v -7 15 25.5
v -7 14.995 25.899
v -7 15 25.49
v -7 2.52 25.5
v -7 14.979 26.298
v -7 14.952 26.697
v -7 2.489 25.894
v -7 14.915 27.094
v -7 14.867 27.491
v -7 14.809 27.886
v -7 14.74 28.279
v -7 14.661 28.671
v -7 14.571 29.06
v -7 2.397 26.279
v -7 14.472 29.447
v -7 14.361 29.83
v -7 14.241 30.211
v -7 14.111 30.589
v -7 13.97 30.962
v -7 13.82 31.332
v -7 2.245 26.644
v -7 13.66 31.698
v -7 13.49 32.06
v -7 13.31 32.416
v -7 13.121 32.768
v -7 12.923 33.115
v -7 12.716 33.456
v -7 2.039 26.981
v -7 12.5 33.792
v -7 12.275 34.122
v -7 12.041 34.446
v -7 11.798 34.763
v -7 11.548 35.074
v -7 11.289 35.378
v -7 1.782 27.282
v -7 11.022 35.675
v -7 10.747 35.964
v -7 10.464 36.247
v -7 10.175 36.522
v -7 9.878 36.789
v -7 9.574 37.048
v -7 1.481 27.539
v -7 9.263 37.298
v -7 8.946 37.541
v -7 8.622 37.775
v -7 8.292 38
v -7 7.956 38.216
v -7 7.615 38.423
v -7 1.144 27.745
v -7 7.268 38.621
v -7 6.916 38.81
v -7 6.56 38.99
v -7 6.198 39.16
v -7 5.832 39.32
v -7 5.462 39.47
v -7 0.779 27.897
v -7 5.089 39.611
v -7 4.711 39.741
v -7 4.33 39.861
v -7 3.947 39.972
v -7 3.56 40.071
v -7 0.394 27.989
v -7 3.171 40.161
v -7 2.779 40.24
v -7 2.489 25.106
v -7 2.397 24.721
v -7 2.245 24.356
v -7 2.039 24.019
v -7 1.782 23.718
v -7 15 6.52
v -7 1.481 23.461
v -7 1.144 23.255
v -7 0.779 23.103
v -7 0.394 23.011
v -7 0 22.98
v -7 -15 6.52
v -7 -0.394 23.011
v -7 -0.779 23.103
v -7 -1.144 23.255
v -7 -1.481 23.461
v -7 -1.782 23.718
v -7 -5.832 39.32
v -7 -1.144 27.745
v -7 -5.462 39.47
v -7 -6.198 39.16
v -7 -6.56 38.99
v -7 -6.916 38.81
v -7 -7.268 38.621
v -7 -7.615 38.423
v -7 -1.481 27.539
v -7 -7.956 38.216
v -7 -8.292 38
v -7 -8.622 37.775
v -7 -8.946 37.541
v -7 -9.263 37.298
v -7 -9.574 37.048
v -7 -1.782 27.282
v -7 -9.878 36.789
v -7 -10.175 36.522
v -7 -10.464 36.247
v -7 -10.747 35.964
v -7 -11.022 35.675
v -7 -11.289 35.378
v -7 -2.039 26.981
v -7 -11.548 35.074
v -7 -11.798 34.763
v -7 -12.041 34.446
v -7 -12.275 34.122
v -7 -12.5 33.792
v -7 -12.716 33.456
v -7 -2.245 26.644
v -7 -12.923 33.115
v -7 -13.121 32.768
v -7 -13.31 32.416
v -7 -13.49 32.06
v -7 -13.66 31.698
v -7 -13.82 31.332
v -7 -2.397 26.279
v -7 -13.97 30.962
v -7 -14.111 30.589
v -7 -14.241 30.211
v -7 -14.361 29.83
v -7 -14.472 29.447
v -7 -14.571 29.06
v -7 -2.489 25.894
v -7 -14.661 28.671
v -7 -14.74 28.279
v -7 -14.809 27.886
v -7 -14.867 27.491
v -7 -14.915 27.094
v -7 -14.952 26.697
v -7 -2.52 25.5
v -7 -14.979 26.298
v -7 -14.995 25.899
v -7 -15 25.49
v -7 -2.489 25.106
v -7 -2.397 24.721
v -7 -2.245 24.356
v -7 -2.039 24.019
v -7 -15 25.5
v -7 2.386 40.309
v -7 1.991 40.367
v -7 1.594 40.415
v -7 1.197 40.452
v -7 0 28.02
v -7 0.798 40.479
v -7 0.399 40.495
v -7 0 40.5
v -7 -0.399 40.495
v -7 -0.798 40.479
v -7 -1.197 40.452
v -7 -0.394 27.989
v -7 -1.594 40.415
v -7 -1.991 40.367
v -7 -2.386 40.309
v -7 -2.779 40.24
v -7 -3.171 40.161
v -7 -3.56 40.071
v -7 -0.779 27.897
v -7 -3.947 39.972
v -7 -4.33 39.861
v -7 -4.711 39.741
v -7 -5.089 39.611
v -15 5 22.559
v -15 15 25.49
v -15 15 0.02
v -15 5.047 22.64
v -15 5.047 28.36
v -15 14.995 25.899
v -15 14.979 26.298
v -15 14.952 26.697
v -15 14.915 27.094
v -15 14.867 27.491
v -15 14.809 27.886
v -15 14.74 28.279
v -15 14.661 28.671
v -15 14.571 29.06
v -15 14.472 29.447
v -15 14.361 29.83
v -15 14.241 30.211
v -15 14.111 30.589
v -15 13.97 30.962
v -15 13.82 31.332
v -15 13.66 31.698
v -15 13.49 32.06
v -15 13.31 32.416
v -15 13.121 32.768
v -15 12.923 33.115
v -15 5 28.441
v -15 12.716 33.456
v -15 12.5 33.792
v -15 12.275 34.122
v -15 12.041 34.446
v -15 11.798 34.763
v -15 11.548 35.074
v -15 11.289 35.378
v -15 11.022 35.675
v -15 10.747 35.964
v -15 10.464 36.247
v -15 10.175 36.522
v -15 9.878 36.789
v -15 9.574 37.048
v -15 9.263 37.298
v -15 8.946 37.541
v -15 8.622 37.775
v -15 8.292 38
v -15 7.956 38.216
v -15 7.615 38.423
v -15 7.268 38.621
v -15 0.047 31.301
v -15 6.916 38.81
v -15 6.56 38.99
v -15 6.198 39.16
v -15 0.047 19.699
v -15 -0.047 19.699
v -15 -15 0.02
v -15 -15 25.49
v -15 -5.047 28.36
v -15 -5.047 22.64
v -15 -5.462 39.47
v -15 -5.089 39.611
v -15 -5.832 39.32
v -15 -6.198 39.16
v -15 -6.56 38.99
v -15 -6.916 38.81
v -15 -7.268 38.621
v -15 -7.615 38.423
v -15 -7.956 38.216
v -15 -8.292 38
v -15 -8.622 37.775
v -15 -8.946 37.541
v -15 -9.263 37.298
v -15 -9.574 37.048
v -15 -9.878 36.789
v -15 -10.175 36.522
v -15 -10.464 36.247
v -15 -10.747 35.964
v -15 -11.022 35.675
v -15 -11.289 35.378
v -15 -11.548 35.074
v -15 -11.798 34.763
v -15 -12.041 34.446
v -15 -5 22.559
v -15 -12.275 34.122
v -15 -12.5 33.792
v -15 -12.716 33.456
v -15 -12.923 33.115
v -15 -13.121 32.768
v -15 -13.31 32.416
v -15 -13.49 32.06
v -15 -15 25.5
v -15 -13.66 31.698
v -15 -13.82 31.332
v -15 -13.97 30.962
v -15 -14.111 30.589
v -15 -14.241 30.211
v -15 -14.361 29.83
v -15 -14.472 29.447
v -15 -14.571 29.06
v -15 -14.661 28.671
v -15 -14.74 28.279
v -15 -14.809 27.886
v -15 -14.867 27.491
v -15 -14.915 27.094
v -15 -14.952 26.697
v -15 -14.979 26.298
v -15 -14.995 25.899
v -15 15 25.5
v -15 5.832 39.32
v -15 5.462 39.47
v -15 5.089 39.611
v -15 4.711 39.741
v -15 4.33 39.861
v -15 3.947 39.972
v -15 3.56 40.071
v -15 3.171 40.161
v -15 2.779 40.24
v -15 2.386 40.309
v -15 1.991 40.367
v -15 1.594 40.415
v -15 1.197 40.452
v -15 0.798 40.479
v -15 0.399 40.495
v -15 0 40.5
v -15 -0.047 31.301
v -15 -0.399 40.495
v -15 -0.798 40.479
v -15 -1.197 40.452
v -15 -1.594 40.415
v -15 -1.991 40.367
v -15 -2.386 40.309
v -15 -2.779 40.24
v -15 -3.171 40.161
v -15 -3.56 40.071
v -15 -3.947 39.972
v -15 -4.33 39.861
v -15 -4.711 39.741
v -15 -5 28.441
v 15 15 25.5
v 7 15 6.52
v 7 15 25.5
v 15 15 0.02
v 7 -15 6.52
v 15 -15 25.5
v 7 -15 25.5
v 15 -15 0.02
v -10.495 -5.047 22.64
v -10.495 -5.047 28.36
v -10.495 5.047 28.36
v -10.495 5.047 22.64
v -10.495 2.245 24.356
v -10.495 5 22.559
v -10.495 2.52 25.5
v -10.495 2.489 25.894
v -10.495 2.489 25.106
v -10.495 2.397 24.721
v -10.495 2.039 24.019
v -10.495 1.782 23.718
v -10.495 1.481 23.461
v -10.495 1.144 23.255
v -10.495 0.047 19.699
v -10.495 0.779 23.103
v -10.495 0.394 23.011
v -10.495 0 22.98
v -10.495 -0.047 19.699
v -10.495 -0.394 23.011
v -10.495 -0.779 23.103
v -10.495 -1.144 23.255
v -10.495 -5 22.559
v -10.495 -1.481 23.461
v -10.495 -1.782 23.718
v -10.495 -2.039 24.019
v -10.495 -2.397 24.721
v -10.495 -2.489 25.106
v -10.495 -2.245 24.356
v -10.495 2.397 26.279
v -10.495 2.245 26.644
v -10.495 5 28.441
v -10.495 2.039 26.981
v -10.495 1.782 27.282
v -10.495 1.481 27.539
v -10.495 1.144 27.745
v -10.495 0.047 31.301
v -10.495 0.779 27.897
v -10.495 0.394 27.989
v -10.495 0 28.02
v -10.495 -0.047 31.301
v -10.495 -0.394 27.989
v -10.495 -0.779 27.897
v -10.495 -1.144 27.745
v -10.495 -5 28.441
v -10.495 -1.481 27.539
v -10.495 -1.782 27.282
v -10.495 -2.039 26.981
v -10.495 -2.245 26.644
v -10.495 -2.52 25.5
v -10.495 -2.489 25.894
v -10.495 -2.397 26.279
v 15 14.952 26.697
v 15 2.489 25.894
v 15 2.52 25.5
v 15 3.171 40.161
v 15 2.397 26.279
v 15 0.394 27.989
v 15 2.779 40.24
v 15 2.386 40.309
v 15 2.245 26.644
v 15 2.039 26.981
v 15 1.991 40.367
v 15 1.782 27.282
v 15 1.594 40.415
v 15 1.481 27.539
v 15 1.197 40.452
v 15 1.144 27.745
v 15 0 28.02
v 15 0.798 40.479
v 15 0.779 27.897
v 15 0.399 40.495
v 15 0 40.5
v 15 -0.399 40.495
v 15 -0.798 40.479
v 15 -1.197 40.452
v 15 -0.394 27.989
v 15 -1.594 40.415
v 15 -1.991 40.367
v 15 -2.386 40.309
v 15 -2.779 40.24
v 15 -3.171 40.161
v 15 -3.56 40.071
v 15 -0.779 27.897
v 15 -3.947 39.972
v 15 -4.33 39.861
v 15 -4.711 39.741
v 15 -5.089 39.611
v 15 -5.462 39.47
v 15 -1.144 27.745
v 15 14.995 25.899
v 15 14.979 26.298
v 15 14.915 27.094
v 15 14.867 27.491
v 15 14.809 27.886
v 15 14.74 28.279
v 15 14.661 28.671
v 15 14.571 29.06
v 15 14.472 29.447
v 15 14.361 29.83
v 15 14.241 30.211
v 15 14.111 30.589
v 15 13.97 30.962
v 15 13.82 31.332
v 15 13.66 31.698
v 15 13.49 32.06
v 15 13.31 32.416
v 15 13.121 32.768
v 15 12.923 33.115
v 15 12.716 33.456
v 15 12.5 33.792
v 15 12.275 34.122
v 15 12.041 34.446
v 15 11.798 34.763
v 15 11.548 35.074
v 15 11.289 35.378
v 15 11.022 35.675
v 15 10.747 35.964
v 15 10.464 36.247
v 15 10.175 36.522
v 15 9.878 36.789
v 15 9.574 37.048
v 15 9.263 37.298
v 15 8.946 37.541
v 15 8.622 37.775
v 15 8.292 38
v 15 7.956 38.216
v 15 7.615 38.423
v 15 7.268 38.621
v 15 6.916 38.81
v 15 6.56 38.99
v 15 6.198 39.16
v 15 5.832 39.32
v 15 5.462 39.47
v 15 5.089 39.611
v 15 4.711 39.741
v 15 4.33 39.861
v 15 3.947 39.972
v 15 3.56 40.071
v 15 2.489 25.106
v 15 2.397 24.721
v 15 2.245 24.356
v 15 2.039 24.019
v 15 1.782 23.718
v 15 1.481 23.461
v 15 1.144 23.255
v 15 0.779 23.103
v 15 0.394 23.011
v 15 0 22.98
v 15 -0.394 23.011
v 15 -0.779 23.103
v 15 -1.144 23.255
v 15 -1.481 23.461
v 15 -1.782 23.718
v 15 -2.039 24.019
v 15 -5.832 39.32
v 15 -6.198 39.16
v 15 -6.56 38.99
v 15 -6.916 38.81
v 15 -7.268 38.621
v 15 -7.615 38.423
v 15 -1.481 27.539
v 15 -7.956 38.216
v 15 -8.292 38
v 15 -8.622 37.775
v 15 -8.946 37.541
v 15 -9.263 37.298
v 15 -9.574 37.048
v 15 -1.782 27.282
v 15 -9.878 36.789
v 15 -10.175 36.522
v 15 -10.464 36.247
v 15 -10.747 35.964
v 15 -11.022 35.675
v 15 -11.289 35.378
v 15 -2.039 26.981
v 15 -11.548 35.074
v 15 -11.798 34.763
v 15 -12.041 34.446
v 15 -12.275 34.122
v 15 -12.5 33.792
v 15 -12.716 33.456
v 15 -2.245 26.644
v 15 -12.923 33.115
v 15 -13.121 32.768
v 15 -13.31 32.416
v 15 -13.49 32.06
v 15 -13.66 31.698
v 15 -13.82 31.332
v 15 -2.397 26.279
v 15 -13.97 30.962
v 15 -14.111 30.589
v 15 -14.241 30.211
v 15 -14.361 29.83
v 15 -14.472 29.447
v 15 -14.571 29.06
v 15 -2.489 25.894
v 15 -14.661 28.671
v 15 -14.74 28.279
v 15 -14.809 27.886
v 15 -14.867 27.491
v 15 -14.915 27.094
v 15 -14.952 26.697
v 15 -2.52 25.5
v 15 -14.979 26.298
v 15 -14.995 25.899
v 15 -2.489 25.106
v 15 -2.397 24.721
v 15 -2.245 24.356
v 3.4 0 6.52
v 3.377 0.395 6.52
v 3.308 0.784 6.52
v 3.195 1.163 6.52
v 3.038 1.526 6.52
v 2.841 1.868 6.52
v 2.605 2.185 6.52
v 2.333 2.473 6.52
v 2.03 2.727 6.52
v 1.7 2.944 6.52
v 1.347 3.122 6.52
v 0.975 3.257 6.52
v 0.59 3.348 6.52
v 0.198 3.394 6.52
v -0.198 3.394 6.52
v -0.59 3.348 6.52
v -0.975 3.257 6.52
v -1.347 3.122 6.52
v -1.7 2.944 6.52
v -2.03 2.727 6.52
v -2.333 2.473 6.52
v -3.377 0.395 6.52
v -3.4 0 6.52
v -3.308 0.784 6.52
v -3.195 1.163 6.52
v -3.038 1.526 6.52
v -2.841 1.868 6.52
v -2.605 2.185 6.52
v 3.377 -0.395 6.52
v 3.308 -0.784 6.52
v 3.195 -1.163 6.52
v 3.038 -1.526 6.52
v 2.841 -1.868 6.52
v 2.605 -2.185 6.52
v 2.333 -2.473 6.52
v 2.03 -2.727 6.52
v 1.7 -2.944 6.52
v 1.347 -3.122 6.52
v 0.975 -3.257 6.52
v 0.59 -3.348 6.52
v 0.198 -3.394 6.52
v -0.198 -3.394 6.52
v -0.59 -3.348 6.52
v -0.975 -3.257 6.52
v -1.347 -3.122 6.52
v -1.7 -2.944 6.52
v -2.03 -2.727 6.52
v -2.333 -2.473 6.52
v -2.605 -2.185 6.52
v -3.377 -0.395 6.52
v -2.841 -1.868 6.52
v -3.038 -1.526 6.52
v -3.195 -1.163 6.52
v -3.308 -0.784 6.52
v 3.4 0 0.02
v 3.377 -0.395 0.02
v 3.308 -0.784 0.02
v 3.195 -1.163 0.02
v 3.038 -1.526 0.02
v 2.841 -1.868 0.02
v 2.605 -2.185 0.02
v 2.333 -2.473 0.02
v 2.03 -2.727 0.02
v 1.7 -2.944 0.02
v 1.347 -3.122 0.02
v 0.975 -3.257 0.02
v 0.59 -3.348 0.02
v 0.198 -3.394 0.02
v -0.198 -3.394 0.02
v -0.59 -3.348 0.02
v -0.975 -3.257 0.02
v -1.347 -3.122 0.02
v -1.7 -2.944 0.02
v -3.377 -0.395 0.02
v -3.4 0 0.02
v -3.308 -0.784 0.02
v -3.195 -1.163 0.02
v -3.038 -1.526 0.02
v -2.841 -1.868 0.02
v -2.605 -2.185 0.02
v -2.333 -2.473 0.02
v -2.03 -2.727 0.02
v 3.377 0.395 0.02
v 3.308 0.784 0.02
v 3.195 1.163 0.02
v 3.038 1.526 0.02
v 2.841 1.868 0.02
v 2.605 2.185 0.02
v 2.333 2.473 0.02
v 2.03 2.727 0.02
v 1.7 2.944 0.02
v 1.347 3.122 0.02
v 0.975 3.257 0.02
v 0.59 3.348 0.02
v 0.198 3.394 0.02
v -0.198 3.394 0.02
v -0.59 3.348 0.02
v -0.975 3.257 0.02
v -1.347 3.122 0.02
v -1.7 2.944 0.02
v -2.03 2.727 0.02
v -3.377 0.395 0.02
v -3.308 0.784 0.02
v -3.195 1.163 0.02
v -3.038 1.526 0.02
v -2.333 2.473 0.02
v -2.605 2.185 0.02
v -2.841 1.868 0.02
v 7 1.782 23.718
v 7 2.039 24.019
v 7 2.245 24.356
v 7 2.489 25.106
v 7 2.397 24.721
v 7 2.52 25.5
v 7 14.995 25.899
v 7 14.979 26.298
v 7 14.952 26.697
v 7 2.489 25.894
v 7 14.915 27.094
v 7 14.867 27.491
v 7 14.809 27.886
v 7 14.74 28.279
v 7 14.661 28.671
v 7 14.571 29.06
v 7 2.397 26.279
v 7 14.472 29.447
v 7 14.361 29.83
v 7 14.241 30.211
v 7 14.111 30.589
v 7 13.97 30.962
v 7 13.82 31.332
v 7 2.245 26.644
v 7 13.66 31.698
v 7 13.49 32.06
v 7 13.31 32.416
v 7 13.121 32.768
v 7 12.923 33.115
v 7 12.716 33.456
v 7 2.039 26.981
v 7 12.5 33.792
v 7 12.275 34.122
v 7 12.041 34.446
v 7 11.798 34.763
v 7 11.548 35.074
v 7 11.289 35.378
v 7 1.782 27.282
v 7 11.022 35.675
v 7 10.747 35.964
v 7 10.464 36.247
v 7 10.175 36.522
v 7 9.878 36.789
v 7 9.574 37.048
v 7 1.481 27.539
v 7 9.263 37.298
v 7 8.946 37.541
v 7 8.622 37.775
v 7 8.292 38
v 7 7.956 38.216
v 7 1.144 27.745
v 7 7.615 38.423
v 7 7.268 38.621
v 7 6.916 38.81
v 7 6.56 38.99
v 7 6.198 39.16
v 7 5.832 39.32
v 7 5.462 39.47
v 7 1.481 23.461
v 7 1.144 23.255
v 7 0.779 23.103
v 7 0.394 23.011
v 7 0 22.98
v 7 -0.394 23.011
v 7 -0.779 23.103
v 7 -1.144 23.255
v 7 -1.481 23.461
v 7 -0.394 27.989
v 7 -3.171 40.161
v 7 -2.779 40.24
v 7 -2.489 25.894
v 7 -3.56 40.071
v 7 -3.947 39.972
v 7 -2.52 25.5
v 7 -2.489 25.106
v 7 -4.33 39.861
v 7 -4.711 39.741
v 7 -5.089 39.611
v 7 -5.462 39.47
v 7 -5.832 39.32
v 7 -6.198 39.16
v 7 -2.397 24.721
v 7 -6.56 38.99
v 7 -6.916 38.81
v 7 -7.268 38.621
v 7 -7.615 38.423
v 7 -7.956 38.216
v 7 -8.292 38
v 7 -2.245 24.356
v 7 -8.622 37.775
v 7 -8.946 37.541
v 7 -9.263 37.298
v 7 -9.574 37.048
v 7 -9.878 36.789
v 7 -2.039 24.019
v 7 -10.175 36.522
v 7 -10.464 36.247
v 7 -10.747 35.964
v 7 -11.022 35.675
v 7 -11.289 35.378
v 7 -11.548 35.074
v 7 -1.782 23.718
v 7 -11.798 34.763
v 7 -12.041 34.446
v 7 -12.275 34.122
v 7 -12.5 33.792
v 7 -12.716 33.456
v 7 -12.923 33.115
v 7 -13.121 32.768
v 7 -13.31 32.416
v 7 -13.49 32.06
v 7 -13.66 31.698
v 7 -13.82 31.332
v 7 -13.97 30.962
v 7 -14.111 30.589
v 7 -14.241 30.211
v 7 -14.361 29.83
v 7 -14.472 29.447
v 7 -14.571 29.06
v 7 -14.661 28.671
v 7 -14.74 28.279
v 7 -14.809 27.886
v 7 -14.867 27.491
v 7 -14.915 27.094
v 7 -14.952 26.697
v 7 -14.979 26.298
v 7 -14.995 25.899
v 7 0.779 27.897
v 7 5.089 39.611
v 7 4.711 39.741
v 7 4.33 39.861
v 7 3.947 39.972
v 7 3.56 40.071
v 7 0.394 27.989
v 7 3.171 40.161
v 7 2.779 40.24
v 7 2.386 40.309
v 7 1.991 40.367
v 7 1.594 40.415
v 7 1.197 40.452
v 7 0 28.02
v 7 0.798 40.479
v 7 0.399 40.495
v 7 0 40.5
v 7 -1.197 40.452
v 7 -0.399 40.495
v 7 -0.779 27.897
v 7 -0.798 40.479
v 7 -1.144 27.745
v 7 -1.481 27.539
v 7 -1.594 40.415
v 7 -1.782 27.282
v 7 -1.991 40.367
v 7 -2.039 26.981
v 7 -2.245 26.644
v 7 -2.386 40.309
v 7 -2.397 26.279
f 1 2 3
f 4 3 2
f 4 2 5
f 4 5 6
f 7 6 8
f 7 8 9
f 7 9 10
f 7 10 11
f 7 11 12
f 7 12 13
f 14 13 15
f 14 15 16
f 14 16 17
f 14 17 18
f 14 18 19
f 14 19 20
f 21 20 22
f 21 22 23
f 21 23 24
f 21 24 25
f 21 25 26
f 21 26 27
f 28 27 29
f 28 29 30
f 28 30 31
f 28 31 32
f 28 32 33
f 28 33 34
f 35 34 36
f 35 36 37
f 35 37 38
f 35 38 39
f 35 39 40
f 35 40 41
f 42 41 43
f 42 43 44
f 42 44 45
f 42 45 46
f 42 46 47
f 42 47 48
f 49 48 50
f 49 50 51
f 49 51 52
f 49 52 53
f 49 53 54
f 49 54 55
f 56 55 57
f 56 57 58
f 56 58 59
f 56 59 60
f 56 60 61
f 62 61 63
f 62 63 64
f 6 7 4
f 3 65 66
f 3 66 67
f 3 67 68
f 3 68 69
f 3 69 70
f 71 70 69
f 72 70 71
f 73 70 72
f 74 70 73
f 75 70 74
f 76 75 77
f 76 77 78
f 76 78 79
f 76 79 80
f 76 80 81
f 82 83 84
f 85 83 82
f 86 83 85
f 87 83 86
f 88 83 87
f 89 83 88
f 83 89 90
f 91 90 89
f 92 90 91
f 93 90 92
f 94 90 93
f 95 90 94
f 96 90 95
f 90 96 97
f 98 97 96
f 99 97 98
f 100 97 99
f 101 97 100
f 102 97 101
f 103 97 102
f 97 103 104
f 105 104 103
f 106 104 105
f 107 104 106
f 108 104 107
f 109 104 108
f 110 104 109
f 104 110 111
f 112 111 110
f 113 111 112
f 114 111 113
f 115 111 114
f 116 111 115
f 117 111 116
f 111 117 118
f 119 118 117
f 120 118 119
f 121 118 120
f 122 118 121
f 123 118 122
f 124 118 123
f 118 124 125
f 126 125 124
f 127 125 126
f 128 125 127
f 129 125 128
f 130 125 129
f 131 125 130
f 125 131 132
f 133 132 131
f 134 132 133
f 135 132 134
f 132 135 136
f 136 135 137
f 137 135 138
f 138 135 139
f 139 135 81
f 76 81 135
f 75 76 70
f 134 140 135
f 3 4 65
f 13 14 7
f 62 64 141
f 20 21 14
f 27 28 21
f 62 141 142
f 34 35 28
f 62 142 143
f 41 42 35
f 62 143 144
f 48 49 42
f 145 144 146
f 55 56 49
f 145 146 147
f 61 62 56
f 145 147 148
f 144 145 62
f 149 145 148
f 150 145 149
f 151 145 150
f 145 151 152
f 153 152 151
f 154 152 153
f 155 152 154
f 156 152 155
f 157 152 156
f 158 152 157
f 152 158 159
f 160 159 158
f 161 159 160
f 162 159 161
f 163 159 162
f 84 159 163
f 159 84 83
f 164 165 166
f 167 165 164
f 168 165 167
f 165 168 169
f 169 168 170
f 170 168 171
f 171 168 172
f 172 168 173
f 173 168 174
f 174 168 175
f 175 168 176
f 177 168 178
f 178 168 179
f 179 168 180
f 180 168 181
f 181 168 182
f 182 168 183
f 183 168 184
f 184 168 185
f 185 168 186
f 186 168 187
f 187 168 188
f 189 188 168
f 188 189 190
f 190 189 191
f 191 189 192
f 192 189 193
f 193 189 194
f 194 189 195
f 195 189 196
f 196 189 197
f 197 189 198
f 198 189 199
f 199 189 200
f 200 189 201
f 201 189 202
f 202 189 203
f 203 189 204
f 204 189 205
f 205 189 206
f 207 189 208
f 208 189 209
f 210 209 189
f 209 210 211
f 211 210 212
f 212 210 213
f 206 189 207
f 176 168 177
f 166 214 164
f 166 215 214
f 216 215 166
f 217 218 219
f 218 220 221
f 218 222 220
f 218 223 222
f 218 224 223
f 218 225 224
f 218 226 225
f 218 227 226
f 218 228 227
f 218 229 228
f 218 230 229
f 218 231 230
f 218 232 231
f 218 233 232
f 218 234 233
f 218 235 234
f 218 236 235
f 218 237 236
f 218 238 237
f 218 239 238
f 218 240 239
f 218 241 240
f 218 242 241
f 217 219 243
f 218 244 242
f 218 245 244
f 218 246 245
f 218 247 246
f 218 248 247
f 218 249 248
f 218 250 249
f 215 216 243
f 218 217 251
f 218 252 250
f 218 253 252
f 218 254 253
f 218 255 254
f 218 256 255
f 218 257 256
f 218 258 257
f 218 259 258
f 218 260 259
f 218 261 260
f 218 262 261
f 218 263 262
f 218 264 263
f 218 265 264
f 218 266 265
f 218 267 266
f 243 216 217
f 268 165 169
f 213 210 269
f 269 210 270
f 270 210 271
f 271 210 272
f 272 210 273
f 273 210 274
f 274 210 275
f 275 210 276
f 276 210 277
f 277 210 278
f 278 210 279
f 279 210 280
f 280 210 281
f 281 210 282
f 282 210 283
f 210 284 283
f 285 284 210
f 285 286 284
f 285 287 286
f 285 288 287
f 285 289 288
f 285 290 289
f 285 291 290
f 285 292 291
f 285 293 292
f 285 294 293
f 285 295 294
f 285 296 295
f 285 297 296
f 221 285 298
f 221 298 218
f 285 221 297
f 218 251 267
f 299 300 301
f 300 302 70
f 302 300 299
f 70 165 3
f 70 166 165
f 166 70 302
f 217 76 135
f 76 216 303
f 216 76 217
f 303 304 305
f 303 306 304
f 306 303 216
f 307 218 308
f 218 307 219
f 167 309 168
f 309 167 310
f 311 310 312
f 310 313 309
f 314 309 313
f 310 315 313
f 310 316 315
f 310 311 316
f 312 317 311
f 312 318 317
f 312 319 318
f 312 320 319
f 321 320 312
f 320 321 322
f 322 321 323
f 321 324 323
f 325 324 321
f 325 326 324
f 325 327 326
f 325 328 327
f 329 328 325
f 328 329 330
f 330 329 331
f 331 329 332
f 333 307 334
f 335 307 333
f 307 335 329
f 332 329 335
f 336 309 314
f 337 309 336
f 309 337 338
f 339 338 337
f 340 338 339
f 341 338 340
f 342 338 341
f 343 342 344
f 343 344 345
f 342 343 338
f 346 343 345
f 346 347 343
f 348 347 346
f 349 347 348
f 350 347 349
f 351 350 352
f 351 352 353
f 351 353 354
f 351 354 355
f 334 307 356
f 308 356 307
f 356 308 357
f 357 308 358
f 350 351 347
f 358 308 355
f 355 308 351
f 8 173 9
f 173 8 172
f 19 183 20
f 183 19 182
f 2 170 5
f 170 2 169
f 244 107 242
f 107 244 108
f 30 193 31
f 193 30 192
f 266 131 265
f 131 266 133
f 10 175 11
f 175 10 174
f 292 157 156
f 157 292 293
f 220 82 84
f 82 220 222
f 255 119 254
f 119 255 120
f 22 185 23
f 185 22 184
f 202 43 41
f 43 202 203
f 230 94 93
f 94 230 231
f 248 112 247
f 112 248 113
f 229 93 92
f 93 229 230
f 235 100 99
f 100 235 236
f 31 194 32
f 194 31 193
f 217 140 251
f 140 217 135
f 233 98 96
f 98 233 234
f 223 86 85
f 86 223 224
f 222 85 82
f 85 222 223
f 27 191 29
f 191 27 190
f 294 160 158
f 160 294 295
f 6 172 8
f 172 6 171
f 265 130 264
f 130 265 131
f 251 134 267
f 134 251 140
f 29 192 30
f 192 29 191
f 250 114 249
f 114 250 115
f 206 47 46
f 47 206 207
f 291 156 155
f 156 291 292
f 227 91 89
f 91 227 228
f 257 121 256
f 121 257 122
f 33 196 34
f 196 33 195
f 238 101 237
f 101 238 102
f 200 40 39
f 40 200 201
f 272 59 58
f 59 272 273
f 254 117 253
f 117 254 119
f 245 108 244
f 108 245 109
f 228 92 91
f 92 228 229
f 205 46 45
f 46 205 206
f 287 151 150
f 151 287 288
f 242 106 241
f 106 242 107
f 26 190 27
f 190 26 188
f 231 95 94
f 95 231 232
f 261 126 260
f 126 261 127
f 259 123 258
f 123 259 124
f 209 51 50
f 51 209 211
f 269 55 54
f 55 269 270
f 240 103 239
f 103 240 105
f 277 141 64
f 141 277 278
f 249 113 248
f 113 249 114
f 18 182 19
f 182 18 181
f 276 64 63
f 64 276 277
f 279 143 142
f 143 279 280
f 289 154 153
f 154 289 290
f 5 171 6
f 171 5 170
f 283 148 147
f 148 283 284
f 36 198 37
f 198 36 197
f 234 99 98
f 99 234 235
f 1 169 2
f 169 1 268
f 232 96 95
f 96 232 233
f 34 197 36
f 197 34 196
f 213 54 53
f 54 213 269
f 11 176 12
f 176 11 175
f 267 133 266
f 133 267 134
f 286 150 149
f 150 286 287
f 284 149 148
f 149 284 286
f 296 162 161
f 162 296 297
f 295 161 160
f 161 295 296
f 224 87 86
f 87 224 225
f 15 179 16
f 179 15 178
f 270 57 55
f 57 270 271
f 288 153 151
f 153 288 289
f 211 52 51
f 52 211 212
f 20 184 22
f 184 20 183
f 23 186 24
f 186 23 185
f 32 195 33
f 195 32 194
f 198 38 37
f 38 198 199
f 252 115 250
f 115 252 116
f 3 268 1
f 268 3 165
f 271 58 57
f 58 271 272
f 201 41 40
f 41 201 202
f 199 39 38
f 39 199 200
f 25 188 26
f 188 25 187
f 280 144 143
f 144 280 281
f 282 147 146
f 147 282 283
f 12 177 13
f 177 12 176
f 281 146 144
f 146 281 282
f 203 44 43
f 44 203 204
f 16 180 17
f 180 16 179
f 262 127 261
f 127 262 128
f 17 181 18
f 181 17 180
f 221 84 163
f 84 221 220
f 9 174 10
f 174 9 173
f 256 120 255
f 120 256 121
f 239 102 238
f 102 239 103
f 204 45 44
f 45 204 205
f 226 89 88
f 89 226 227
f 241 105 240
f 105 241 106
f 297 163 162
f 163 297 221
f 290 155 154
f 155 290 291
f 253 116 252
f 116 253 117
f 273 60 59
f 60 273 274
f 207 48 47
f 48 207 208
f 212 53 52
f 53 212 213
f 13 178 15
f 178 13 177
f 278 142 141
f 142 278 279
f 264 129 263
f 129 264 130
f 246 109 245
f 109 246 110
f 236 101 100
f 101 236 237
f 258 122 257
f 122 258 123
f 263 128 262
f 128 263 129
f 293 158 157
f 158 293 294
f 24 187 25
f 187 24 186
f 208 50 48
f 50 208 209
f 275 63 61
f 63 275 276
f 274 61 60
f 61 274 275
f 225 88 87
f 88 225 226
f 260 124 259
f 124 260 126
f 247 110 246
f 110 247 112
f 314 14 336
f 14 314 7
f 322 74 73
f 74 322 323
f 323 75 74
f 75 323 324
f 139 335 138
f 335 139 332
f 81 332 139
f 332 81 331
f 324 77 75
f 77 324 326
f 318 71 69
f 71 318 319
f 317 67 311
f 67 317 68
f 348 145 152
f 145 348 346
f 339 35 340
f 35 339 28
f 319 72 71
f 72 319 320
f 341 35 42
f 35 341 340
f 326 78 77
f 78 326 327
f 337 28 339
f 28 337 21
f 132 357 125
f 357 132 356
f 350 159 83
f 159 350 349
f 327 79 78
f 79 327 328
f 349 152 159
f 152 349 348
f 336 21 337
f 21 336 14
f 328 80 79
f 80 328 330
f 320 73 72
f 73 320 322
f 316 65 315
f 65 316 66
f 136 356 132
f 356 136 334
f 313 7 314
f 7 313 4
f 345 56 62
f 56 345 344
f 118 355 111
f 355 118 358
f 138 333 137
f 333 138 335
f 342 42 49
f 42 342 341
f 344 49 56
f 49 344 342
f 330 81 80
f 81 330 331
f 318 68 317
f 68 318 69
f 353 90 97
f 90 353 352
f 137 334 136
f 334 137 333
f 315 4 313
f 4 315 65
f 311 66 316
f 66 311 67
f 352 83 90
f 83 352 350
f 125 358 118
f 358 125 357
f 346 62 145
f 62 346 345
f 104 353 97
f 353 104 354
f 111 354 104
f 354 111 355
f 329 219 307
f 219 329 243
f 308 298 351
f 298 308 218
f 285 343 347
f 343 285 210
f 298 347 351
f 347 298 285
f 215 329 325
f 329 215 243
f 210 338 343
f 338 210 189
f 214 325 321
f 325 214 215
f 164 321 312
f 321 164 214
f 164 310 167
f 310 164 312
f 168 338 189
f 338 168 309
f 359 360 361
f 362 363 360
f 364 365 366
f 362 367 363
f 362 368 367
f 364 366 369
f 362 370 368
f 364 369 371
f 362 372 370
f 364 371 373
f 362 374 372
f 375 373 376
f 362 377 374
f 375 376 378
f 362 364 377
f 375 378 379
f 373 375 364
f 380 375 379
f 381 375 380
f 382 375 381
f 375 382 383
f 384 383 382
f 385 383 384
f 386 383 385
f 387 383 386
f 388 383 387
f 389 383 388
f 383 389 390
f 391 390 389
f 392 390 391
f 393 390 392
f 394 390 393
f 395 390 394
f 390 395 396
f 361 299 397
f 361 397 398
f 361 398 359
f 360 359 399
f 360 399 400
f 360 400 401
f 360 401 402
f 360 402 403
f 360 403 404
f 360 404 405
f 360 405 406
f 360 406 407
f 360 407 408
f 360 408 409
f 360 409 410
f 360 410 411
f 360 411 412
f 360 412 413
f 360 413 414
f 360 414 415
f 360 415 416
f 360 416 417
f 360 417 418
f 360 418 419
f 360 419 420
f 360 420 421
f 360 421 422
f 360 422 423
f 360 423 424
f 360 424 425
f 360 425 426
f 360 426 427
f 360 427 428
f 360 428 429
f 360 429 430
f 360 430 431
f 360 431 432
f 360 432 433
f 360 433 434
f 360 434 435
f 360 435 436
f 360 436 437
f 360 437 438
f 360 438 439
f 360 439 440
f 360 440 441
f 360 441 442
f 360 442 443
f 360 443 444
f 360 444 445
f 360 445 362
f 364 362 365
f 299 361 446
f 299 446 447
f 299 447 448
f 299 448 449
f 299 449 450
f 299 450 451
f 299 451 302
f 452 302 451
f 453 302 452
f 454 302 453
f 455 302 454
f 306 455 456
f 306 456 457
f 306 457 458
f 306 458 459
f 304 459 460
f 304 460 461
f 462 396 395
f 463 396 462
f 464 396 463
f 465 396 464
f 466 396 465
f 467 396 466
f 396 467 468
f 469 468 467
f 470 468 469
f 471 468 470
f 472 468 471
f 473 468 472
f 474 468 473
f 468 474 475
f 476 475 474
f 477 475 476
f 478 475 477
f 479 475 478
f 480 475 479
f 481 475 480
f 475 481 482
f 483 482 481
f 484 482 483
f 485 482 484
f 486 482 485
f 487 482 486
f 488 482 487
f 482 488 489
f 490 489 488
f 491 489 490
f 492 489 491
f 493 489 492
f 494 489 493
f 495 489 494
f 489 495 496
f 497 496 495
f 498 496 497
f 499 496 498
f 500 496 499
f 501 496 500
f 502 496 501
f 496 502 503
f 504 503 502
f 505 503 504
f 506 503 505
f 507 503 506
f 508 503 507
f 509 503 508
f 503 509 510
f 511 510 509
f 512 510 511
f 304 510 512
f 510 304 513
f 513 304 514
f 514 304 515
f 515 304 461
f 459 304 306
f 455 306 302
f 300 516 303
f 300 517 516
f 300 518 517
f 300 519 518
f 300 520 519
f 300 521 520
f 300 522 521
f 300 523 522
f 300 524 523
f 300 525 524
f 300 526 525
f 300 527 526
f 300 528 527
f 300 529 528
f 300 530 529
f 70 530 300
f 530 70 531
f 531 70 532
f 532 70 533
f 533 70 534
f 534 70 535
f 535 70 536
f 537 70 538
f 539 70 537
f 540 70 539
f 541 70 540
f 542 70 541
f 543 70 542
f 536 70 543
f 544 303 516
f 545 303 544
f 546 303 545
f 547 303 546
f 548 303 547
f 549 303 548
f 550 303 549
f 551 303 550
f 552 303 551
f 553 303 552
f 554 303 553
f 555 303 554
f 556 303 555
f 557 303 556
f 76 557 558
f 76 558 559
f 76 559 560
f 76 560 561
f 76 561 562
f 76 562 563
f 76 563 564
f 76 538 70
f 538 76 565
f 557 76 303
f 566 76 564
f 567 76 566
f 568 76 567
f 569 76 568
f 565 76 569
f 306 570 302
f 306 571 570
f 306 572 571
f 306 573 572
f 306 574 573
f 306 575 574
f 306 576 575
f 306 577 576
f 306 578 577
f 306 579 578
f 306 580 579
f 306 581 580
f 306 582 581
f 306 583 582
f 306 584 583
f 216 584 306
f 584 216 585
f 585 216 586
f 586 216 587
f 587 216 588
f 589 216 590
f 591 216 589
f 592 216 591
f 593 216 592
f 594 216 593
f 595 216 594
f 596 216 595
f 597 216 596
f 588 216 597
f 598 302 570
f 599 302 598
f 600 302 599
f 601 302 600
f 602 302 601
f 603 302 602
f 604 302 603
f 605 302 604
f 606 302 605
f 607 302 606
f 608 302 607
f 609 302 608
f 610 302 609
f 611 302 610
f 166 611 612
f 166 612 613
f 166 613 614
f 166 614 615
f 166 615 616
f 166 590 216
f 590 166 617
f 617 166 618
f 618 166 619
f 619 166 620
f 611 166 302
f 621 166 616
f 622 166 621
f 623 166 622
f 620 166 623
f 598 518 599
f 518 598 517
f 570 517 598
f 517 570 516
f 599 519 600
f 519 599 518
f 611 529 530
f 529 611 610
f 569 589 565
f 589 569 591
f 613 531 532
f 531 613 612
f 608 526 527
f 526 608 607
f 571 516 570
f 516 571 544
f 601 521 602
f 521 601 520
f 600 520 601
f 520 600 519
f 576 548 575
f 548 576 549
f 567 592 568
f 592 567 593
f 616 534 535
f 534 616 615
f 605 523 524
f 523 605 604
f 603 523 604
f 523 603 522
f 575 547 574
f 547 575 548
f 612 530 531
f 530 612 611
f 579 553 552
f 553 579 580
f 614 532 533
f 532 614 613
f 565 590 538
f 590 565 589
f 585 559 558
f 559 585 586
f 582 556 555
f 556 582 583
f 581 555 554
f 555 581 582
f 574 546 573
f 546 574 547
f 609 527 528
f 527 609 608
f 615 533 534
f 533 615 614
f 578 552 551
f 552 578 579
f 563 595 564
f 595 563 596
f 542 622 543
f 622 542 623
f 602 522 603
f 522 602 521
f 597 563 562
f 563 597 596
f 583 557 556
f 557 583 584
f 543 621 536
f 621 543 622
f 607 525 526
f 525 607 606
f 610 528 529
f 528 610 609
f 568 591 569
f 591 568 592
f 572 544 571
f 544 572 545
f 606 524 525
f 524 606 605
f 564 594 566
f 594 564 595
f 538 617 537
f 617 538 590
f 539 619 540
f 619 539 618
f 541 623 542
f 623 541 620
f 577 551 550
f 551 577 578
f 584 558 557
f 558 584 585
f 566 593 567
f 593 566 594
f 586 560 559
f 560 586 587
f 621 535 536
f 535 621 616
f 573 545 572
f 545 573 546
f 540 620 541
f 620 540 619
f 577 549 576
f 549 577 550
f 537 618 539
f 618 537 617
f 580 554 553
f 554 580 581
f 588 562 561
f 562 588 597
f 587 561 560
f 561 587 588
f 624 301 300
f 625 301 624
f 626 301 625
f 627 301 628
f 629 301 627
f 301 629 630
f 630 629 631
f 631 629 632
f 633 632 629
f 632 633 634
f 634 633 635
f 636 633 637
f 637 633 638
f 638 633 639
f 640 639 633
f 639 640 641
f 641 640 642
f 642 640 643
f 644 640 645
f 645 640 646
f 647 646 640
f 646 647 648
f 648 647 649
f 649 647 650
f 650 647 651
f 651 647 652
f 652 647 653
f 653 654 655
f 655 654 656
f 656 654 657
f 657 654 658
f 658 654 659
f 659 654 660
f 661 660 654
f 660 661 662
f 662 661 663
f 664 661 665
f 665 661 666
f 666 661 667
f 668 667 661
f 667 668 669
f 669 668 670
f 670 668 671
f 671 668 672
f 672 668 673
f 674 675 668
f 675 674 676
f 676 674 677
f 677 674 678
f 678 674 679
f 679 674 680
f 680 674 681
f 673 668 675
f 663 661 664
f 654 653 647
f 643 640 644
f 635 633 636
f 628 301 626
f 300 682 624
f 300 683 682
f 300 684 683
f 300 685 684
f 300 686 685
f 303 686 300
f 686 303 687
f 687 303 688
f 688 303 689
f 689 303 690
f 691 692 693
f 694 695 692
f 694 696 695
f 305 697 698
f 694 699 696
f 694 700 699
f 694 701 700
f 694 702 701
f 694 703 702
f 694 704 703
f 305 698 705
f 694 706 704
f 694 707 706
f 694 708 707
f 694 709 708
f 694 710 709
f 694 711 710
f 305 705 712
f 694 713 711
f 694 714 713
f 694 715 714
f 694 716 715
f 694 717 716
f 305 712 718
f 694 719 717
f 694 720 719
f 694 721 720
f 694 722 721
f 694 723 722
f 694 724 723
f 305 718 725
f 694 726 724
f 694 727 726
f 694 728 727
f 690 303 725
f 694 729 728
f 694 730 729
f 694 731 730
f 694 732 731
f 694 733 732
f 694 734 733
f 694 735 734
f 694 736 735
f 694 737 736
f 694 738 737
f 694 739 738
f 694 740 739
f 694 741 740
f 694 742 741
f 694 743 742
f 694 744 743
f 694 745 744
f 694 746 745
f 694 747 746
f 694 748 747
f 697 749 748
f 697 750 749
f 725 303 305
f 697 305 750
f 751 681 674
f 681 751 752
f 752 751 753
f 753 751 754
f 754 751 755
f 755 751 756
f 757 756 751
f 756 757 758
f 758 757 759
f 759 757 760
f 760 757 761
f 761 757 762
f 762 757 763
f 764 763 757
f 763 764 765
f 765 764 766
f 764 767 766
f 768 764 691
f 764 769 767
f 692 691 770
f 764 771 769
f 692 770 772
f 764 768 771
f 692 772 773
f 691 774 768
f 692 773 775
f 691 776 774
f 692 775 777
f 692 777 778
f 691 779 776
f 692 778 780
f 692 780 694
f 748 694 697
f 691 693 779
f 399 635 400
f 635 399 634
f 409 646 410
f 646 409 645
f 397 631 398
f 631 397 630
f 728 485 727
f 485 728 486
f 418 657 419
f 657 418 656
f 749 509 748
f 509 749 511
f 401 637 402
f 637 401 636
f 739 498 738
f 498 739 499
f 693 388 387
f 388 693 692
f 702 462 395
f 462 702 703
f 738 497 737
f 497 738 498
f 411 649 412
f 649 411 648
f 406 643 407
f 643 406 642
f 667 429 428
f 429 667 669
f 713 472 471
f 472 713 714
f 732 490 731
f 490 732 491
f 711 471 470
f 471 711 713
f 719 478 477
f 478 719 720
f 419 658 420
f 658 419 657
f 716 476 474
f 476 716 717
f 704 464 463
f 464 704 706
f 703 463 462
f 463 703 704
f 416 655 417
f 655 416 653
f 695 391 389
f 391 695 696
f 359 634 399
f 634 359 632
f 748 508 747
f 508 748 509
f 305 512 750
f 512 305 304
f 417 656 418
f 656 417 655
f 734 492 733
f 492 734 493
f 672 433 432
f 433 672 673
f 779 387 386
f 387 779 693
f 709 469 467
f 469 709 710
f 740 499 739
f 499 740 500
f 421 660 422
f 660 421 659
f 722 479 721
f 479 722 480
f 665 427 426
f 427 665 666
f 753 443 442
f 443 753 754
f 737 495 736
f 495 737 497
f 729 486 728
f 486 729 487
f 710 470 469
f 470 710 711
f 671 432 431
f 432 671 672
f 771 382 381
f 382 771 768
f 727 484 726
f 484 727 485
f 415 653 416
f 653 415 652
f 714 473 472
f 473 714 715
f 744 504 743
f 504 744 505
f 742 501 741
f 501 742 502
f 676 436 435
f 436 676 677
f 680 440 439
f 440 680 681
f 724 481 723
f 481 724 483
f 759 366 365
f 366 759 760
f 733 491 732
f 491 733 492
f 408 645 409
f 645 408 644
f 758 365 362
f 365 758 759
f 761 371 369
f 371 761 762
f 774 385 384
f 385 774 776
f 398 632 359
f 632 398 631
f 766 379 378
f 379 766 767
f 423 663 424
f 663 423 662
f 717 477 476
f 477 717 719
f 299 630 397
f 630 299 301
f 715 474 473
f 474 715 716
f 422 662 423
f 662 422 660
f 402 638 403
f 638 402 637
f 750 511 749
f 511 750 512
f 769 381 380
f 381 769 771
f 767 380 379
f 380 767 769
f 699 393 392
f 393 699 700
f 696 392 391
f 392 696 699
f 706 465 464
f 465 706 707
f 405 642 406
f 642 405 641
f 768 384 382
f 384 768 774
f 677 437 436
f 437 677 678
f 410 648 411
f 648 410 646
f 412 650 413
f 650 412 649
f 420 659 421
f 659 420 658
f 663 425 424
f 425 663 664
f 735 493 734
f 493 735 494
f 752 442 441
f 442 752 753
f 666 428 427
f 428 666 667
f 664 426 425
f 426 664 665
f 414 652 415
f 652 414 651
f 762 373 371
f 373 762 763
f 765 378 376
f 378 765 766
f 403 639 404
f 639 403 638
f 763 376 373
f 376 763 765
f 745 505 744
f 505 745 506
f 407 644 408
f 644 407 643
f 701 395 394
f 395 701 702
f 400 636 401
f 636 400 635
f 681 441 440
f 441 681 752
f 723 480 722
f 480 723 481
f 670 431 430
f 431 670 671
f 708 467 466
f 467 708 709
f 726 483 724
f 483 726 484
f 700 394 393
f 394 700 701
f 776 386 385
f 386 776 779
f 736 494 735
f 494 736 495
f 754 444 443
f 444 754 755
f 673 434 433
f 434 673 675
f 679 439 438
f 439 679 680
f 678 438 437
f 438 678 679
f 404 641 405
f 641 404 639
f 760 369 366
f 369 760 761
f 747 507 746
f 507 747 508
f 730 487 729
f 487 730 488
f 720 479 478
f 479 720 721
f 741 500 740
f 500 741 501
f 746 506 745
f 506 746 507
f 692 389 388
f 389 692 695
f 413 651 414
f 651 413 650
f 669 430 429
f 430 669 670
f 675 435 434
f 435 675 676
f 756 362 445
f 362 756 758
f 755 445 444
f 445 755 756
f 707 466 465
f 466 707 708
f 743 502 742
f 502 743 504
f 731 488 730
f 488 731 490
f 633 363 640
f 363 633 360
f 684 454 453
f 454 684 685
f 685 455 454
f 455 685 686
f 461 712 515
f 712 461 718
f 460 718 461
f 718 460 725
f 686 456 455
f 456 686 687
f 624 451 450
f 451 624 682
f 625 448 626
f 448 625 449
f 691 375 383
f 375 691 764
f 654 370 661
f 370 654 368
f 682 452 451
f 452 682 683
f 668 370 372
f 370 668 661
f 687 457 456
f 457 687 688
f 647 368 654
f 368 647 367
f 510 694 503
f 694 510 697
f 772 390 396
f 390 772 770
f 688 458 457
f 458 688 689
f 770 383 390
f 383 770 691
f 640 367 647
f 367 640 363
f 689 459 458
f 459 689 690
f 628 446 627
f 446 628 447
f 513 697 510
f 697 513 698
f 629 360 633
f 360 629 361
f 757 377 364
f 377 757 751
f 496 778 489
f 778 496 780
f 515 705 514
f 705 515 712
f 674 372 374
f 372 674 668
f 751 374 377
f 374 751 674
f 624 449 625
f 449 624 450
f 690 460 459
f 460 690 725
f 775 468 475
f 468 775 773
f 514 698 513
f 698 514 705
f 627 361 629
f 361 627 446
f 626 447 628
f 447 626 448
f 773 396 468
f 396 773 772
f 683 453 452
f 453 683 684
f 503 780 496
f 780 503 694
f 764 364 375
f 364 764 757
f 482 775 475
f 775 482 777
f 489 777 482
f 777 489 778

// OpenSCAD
$fa = 1;
$fs = 0.4;

module phex(wid,rad,height){
hull(){
translate([wid/2-rad,0,0])cylinder(r=rad,h=height);
rotate([0,0,60])translate([wid/2-rad,0,0])cylinder(r=rad,h=height);
rotate([0,0,120])translate([wid/2-rad,0,0])cylinder(r=rad,h=height);
rotate([0,0,180])translate([wid/2-rad,0,0])cylinder(r=rad,h=height);
rotate([0,0,240])translate([wid/2-rad,0,0])cylinder(r=rad,h=height);
rotate([0,0,300])translate([wid/2-rad,0,0])cylinder(r=rad,h=height);

}
}

module fhex(wid,height){
hull(){
cube([wid/1.7,wid,height],center = true);
rotate([0,0,120])cube([wid/1.7,wid,height],center = true);
rotate([0,0,240])cube([wid/1.7,wid,height],center = true);
}
}





translate([-(15-8/2),0,19/2+6.5-0.01])
difference(){
cube([8,30,19],center=true);

translate([0,0,19/2])
rotate([0,90,0])
cylinder(h=8+0.001,r=5.04/2,center=true);

translate([-2,0,19/2])
rotate([0,90,0])
fhex(10,5+0.01);
}



translate([-(15-8/2),0,19+6.5])
rotate([0,90,0])
difference(){
cylinder(h=8,r=15,center=true);
cylinder(h=8+0.001,r=5.04/2,center=true);

translate([0,0,-2])
rotate([0,0,0])
fhex(10,5+0.01);

}

translate([0,0,6.5/2+0.02])
difference(){
color([1,0,0])cube([30,30,6.5],center=true);
cylinder(h=6.6,r=6.8/2,center=true);
}

translate([15-8/2,0,19/2+6.5])
difference(){
cube([8,30,19],center=true);

translate([0,0,19/2])
rotate([0,90,0])
    cylinder(h=8+0.001,r=5.04/2,center=true);
}



translate([(15-8/2),0,19+6.5])
rotate([0,90,0])

difference(){
cylinder(h=8,r=15,center=true);
cylinder(h=8+0.001,r=5.04/2,center=true);
}
